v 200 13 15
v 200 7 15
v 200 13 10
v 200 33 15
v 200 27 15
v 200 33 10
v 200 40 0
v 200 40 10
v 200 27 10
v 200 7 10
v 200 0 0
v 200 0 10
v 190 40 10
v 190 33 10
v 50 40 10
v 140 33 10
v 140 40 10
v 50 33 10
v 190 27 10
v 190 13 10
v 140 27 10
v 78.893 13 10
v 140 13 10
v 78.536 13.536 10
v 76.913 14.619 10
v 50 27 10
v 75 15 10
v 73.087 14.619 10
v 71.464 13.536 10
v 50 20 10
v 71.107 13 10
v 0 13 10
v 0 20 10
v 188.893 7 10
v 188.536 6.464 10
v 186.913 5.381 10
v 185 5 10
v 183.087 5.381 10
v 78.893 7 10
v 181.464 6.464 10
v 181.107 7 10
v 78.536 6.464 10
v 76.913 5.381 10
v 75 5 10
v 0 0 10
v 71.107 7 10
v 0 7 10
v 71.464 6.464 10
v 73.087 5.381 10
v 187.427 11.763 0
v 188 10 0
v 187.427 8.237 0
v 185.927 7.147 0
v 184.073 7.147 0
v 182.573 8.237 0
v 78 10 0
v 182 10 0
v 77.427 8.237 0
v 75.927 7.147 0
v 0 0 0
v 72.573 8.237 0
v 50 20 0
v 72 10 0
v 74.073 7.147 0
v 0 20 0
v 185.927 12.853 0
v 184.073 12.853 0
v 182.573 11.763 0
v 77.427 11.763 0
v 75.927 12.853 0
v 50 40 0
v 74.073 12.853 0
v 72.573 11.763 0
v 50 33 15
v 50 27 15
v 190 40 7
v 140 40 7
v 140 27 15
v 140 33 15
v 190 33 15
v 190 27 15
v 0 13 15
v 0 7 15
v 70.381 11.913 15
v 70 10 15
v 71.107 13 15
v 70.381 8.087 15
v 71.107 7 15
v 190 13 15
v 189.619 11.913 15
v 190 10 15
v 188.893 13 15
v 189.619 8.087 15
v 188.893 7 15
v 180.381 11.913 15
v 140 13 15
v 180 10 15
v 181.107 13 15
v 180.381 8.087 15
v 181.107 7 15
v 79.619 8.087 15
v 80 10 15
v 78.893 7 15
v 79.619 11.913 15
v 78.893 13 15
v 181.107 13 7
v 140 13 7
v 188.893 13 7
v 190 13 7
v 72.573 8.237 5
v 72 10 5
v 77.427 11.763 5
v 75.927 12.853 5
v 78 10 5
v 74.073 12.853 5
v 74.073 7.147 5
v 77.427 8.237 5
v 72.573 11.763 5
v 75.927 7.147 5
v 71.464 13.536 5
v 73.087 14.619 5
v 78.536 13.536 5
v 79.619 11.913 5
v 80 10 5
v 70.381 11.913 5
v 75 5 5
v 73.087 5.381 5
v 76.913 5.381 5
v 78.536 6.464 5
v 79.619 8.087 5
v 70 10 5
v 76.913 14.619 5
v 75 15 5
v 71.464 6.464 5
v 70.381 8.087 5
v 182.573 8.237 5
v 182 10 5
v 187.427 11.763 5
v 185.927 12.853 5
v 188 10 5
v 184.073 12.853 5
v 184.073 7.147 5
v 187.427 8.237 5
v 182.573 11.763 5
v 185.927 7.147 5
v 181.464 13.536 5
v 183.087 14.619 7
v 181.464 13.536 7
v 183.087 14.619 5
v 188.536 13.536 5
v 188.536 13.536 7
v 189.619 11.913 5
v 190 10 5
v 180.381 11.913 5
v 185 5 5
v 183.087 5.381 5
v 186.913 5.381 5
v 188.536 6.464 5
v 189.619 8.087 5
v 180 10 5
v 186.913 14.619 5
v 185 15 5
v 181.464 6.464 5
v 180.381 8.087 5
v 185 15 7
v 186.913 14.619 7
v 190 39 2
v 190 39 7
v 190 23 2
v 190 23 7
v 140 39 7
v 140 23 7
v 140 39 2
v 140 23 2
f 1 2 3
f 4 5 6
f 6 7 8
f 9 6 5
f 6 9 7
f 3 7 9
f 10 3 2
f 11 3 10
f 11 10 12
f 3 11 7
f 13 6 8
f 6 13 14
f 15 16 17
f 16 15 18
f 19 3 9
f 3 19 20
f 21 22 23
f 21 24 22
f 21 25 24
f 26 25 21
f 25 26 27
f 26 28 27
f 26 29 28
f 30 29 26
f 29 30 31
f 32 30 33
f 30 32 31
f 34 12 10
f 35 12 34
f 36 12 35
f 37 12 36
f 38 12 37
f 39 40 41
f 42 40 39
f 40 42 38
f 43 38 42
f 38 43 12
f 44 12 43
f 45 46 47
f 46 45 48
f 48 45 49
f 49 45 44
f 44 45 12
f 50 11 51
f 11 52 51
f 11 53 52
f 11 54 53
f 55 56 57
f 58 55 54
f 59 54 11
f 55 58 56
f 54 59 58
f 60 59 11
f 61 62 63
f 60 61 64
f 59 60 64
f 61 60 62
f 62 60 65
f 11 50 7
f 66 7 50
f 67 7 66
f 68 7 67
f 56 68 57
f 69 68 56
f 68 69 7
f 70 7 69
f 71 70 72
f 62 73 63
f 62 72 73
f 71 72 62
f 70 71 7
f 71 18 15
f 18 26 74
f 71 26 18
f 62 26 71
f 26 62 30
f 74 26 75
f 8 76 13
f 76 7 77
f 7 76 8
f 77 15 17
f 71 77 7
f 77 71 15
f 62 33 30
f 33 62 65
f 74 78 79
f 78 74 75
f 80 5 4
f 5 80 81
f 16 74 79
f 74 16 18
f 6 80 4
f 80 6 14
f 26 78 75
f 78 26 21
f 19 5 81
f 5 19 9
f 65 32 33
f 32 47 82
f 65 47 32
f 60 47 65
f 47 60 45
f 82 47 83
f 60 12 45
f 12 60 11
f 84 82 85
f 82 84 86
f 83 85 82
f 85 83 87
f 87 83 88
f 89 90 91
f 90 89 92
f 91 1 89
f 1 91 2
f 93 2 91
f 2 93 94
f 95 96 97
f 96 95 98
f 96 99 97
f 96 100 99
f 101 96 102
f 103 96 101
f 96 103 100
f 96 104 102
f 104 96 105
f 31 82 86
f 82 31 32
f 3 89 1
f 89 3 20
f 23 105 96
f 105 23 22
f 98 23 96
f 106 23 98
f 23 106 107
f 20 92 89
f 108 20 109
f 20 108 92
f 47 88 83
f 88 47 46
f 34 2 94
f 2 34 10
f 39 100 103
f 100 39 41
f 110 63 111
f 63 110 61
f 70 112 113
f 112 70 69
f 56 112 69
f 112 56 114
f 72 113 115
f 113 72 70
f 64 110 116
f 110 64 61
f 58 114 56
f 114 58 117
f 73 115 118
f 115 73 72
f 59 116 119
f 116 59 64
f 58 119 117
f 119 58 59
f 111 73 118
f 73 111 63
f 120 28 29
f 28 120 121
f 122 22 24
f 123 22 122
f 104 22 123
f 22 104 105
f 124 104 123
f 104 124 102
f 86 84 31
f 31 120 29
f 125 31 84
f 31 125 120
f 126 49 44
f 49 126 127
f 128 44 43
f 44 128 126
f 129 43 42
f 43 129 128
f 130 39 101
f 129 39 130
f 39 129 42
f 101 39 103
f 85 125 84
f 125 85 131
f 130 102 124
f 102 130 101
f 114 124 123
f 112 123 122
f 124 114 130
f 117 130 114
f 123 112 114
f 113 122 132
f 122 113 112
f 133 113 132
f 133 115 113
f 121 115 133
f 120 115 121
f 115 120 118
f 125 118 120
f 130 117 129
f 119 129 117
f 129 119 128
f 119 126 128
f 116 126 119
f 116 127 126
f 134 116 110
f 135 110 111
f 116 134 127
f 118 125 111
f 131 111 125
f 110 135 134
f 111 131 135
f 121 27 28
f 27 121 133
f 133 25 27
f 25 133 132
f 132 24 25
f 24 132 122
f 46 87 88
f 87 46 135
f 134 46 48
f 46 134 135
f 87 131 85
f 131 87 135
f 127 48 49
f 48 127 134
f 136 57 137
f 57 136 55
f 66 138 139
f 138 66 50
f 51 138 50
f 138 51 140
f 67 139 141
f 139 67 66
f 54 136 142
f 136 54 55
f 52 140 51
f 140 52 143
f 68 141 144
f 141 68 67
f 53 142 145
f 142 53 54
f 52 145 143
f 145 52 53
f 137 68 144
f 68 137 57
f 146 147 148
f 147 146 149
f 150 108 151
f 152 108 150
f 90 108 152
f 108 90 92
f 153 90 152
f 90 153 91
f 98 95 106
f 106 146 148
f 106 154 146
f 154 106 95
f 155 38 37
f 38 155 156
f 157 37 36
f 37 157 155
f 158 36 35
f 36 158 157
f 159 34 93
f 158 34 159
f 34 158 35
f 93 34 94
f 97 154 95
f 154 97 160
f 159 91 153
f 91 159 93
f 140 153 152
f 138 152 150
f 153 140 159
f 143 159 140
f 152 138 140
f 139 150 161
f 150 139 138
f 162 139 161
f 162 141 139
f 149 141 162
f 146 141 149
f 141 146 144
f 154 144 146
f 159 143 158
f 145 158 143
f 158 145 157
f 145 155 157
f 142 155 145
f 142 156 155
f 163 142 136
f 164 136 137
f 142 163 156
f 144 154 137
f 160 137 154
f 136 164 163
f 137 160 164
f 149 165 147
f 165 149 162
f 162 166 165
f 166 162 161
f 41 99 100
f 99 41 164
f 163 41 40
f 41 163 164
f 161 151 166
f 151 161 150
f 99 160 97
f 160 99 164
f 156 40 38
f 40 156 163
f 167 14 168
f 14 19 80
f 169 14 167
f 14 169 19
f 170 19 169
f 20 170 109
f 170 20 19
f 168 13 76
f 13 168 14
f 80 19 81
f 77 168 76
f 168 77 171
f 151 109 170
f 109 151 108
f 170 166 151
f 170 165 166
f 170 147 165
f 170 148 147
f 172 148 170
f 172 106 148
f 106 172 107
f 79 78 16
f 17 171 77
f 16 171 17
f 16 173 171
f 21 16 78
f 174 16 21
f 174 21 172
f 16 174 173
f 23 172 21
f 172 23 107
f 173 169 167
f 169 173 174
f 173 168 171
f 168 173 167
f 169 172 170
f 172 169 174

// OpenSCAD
difference() {
    union() {
        // long rim
        cube([200, 20, 10]);
        translate([0,7,10]){
            cube([200, 6, 5]);
        }
        
        // short rim
        translate([50,20,0]){ 
            cube([150, 20, 10]);
            translate([0,7,10]){
                cube([150, 6, 5]);
            }
        }
     }
     
     // hole 1
     translate([75,10,12.5]){
        cylinder(h = 25, r = 3, center = true);
        cylinder(h = 15, r = 5, center = true);
     }
     
      // hole 2
      translate([185,10,12.5]){
        cylinder(h = 25, r = 3, center = true);
        cylinder(h = 15, r = 5, center = true);
     }
     
     // motor cutout
     translate([140,13,7]){ 
          cube([50, 27, 8]);
          translate([0,10,-5]){
            cube([50, 16, 5]);
          }
        }
 }
